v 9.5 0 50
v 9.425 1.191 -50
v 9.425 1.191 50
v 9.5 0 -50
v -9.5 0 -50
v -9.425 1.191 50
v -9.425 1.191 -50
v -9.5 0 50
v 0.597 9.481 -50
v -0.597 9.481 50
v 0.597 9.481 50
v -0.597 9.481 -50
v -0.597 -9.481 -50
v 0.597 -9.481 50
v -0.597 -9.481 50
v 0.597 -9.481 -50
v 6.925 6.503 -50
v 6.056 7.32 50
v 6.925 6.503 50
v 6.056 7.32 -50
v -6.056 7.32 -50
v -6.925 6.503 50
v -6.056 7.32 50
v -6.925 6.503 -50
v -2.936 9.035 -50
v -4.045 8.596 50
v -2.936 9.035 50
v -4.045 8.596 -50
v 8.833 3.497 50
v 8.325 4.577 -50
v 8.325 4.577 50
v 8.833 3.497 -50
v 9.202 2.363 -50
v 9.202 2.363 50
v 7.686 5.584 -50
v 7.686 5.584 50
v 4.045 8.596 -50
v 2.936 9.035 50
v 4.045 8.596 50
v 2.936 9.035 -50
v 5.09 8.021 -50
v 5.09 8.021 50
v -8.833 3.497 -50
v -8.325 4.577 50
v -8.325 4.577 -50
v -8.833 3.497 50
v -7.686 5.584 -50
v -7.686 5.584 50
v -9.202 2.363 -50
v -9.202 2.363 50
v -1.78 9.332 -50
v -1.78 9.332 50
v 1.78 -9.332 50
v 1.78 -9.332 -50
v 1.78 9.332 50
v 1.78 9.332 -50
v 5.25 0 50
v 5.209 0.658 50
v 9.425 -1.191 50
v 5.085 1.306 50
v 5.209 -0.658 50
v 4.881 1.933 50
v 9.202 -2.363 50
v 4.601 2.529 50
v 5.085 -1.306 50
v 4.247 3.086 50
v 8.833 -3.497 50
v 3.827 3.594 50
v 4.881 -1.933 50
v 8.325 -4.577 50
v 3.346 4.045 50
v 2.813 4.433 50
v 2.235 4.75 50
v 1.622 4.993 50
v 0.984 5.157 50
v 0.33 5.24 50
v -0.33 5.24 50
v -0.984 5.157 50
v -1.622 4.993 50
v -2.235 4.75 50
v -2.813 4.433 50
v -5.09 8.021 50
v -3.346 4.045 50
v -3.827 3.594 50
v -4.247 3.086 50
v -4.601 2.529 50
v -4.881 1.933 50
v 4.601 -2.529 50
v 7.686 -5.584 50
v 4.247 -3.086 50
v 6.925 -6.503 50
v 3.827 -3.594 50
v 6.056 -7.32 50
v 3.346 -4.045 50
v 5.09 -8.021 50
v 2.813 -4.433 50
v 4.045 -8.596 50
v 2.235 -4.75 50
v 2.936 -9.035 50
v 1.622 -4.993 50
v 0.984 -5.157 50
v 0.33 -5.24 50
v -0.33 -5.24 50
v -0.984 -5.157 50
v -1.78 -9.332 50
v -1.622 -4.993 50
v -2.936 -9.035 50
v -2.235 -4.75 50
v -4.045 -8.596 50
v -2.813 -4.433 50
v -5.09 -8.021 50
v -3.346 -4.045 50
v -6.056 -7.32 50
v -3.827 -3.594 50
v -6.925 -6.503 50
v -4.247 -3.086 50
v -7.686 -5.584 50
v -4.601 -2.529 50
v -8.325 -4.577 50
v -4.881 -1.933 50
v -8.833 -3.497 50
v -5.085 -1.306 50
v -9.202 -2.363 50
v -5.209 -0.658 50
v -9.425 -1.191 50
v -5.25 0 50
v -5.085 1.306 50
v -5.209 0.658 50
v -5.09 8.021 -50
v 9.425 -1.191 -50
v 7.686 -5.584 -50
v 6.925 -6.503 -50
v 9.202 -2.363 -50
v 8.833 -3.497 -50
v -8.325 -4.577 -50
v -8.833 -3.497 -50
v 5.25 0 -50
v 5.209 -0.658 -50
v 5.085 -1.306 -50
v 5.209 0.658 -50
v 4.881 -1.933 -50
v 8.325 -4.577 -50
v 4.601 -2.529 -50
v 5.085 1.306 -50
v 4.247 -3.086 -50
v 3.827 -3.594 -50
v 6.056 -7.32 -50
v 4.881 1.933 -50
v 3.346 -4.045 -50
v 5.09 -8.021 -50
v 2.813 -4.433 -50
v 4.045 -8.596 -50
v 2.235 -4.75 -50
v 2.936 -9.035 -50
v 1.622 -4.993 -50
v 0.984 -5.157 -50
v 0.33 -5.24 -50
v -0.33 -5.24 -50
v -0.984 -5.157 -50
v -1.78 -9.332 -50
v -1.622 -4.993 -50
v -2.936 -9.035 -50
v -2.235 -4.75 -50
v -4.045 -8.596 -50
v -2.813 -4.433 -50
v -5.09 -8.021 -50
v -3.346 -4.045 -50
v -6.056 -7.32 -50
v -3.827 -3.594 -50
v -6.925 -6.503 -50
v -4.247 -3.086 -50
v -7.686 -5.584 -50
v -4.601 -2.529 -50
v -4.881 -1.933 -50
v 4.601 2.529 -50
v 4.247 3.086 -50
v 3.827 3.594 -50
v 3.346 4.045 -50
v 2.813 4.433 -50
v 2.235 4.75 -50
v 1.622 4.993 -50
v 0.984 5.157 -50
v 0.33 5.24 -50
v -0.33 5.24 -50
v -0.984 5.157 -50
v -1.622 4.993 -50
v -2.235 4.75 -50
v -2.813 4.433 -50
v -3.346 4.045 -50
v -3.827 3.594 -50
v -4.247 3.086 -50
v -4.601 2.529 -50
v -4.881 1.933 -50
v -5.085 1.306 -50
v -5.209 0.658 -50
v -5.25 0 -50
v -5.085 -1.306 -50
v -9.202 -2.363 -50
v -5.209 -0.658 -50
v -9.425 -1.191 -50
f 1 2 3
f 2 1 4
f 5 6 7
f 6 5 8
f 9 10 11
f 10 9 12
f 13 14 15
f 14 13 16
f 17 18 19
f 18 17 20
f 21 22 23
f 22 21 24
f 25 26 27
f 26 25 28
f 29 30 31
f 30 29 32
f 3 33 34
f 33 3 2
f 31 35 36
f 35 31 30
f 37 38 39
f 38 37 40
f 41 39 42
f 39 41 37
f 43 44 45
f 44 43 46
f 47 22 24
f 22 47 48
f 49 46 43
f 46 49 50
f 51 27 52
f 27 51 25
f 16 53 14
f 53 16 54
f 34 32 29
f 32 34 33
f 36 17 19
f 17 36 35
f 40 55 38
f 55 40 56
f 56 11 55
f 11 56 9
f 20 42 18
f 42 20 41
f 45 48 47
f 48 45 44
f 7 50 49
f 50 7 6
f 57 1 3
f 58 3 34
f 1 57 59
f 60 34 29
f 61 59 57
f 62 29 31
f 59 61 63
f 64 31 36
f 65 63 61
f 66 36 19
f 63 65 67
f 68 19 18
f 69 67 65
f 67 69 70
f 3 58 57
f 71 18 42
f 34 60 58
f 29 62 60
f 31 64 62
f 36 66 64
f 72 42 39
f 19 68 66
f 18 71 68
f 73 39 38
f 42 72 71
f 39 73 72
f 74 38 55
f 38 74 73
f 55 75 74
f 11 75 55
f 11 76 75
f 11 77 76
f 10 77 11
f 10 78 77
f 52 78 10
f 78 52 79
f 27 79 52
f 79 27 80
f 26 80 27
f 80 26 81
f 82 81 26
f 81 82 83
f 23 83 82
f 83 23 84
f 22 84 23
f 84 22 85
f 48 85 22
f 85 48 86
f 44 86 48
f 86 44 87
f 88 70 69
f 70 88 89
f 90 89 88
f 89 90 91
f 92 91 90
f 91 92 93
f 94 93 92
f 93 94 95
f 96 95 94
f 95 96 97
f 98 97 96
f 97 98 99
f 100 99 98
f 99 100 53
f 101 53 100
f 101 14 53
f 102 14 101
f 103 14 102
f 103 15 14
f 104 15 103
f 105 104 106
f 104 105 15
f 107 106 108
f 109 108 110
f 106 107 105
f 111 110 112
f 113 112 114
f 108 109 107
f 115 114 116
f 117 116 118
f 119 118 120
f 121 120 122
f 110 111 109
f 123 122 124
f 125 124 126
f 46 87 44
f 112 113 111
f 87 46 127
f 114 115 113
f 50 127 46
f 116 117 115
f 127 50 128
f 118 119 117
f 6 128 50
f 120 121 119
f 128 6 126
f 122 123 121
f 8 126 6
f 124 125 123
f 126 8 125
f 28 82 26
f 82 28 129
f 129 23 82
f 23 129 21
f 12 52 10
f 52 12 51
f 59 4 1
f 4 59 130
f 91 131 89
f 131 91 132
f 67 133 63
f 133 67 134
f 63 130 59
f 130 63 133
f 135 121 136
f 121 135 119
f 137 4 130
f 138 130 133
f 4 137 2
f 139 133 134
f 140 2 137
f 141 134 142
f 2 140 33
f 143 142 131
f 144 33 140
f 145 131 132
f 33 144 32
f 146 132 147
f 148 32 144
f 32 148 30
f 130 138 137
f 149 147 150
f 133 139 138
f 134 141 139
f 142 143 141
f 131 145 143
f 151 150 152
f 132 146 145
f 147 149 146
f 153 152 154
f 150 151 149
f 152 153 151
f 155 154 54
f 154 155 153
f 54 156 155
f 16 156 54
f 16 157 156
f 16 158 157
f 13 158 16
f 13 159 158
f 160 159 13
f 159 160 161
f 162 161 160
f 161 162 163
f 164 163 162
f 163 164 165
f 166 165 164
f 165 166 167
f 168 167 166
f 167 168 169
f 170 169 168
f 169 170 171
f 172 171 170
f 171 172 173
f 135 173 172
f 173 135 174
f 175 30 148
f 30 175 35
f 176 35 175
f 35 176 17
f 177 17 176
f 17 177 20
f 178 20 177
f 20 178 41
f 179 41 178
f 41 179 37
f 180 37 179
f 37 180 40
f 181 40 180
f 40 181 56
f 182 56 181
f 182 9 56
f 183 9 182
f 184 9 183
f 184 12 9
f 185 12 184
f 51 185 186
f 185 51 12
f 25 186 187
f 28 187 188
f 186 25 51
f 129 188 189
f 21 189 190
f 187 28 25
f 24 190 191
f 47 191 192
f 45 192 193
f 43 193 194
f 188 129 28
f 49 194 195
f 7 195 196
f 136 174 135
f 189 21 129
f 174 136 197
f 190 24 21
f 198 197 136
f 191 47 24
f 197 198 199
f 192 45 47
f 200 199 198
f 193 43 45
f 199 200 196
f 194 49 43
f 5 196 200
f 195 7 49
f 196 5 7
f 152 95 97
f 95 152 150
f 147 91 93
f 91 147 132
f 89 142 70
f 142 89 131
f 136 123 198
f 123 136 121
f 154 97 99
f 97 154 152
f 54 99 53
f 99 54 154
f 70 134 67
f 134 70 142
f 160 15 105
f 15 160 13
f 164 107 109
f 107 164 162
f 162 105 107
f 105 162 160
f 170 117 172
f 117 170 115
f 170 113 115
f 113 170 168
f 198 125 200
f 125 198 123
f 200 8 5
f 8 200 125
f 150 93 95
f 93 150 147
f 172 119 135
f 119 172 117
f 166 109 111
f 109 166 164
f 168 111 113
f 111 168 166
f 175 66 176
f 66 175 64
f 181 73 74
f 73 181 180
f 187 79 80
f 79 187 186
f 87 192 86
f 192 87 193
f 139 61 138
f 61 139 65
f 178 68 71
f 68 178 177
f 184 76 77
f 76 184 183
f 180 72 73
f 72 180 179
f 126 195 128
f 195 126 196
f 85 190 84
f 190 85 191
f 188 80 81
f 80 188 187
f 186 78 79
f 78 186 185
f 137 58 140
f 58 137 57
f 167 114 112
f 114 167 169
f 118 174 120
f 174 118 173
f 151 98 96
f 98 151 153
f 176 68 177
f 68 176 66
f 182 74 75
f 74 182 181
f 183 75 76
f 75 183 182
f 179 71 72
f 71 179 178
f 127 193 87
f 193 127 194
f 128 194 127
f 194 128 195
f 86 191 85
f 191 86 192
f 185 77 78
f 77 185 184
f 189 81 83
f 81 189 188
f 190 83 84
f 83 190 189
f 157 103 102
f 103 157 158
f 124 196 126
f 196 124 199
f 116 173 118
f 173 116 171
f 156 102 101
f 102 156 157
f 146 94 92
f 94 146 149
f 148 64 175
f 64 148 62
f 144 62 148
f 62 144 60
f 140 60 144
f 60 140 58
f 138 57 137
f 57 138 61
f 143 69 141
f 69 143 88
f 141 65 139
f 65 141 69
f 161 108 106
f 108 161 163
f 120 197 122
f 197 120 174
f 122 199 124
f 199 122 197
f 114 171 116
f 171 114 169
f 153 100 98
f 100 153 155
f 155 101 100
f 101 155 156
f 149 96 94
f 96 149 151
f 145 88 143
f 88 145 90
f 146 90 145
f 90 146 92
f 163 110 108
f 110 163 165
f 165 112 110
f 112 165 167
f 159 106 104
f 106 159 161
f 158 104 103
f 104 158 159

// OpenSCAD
$fn = 50;


difference() {
	union() {
		translate(v = [0, 0, -50.0000000000]) {
			cylinder(h = 100, r = 9.5000000000);
		}
	}
	union() {
		translate(v = [0, 0, -100.0000000000]) {
			cylinder(h = 200, r = 5.2500000000);
		}
	}
}
